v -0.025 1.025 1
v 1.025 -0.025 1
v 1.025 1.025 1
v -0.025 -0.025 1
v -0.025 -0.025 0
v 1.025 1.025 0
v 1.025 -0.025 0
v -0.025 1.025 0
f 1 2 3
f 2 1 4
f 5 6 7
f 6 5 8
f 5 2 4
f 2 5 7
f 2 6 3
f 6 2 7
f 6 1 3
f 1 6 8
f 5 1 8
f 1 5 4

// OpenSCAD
//------------------------------------------------------
// Base
// BAse
// 5@xes 24/06/2022
// Size Must be 1x1 !
//------------------------------------------------------

$fn=20;


//render() translate([0.5,0,0]) mirror([1,0,0]) letter("/");
render() translate([-0.025,-0.025,0]) cube(size = [1.05,1.05,1], center = false);
